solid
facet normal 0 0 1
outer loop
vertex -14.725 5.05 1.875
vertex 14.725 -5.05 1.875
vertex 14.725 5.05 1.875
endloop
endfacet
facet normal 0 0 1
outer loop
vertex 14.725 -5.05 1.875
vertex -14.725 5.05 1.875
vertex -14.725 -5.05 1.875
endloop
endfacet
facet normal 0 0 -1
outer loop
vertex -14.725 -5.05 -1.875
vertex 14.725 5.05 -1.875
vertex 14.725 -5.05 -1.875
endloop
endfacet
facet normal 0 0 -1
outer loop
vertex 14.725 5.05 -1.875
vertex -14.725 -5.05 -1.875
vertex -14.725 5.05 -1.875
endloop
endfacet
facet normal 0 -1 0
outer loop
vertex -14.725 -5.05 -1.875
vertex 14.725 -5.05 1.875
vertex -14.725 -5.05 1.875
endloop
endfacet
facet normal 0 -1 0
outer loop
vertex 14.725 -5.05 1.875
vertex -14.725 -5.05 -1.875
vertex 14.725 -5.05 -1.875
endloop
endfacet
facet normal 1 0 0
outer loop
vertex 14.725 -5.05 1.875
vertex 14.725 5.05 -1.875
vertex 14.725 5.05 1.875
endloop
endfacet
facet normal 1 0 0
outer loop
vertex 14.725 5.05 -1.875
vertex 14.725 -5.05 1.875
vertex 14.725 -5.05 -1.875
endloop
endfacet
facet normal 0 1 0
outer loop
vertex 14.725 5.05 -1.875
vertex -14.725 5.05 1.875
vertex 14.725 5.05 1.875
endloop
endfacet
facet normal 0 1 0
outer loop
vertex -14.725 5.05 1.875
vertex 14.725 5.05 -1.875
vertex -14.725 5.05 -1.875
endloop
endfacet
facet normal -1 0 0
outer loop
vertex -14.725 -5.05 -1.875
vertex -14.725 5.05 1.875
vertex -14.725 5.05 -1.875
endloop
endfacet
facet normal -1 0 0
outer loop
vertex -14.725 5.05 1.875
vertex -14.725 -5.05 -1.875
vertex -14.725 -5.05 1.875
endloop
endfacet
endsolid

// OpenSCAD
// Sharp GP2Y0D413K0F Distance Sensor Modeling
// Coordinate System: Origin at center of the body. -Z points towards the mounting surface (PWB/Connector side).
// Dimensions are based on the provided outline dimensions in mm.

// --- Parameters based on Outline Dimensions ---
L = 29.45; // Length (mm)
W = 10.1;  // Width (mm)
H = 3.75;  // Thickness/Height (derived from drawing, representing the dimension between mounting features)

// --- Module Definitions ---

// Main Sensor Body
module sensor_body() {
    // The body is centered at the origin (0, 0, 0).
    // Since -Z points to the mounting surface, the body extends in the positive Z direction.
    cube([L, W, H], center = true);
}

// Optional: Representing a simplified connection area or mounting feature if required, 
// but focusing primarily on the main geometry defined by the outline.

// --- Model Execution ---
sensor_body();

// Note: The block diagram features (LED emitter, Output circuit, etc.) are functional representations
// and are not explicitly modeled as physical external features unless specific dimensions for their placement are provided.
